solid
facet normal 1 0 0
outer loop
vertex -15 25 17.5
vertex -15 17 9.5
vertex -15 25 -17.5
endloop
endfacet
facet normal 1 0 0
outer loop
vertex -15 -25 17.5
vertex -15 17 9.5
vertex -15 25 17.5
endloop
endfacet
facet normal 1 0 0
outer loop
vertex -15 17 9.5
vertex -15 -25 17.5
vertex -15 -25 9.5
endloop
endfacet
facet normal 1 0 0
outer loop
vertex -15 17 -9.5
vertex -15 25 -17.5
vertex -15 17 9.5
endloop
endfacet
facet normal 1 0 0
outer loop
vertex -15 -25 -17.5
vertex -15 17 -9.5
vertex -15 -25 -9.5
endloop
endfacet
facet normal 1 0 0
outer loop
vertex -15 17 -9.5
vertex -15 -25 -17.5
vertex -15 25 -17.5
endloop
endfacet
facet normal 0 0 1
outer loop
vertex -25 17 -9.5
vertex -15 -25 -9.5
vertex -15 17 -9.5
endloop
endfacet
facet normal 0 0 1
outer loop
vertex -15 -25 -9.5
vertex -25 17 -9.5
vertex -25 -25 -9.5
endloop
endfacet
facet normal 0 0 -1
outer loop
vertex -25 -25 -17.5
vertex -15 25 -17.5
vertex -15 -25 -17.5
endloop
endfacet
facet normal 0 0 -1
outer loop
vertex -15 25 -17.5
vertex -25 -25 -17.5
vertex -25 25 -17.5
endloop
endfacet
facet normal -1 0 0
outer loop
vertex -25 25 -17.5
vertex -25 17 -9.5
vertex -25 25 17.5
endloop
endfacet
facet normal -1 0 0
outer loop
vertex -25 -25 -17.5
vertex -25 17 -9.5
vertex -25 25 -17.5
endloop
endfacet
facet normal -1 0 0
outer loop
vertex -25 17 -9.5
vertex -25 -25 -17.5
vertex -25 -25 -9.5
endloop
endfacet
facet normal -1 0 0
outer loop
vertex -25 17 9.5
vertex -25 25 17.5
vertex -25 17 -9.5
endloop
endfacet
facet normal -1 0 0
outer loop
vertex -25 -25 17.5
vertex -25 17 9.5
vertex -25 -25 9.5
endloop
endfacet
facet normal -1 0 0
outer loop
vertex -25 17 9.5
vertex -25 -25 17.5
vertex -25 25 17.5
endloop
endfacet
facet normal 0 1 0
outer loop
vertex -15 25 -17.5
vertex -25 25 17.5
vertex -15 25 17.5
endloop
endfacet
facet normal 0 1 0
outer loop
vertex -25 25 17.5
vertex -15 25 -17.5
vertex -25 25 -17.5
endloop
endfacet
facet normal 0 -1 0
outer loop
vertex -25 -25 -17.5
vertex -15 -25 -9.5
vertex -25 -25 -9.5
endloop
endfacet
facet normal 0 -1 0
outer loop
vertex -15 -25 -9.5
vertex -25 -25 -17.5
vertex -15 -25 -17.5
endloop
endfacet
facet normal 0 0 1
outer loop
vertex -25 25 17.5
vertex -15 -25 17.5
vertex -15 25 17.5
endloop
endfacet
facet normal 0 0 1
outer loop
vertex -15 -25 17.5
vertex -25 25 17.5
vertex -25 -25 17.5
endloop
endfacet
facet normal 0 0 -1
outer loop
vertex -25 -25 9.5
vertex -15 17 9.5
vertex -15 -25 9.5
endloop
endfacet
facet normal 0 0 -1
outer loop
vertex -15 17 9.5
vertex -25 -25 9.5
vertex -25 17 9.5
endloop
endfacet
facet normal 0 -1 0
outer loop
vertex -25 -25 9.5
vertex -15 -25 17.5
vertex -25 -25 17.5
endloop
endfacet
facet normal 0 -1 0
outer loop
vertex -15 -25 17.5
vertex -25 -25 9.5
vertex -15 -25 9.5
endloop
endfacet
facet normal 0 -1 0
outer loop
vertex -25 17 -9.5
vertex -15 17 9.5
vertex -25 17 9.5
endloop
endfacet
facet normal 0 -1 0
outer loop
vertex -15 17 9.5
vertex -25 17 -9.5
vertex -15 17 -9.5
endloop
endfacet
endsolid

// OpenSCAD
bx=10;
by=50;
bz=8;

cx=50;
cy=23;
cz=18;

translate([-20,0, -13.5])
cube([bx, by, bz], center=true);
translate([-20,0,13.5])
cube([bx, by, bz], center=true);

translate([-20,21,0])
rotate([90,0,0])
cube([bx, 34, bz], center=true);


//color("blue", 0.8)
//cube([cx, cy, cz], center=true);
